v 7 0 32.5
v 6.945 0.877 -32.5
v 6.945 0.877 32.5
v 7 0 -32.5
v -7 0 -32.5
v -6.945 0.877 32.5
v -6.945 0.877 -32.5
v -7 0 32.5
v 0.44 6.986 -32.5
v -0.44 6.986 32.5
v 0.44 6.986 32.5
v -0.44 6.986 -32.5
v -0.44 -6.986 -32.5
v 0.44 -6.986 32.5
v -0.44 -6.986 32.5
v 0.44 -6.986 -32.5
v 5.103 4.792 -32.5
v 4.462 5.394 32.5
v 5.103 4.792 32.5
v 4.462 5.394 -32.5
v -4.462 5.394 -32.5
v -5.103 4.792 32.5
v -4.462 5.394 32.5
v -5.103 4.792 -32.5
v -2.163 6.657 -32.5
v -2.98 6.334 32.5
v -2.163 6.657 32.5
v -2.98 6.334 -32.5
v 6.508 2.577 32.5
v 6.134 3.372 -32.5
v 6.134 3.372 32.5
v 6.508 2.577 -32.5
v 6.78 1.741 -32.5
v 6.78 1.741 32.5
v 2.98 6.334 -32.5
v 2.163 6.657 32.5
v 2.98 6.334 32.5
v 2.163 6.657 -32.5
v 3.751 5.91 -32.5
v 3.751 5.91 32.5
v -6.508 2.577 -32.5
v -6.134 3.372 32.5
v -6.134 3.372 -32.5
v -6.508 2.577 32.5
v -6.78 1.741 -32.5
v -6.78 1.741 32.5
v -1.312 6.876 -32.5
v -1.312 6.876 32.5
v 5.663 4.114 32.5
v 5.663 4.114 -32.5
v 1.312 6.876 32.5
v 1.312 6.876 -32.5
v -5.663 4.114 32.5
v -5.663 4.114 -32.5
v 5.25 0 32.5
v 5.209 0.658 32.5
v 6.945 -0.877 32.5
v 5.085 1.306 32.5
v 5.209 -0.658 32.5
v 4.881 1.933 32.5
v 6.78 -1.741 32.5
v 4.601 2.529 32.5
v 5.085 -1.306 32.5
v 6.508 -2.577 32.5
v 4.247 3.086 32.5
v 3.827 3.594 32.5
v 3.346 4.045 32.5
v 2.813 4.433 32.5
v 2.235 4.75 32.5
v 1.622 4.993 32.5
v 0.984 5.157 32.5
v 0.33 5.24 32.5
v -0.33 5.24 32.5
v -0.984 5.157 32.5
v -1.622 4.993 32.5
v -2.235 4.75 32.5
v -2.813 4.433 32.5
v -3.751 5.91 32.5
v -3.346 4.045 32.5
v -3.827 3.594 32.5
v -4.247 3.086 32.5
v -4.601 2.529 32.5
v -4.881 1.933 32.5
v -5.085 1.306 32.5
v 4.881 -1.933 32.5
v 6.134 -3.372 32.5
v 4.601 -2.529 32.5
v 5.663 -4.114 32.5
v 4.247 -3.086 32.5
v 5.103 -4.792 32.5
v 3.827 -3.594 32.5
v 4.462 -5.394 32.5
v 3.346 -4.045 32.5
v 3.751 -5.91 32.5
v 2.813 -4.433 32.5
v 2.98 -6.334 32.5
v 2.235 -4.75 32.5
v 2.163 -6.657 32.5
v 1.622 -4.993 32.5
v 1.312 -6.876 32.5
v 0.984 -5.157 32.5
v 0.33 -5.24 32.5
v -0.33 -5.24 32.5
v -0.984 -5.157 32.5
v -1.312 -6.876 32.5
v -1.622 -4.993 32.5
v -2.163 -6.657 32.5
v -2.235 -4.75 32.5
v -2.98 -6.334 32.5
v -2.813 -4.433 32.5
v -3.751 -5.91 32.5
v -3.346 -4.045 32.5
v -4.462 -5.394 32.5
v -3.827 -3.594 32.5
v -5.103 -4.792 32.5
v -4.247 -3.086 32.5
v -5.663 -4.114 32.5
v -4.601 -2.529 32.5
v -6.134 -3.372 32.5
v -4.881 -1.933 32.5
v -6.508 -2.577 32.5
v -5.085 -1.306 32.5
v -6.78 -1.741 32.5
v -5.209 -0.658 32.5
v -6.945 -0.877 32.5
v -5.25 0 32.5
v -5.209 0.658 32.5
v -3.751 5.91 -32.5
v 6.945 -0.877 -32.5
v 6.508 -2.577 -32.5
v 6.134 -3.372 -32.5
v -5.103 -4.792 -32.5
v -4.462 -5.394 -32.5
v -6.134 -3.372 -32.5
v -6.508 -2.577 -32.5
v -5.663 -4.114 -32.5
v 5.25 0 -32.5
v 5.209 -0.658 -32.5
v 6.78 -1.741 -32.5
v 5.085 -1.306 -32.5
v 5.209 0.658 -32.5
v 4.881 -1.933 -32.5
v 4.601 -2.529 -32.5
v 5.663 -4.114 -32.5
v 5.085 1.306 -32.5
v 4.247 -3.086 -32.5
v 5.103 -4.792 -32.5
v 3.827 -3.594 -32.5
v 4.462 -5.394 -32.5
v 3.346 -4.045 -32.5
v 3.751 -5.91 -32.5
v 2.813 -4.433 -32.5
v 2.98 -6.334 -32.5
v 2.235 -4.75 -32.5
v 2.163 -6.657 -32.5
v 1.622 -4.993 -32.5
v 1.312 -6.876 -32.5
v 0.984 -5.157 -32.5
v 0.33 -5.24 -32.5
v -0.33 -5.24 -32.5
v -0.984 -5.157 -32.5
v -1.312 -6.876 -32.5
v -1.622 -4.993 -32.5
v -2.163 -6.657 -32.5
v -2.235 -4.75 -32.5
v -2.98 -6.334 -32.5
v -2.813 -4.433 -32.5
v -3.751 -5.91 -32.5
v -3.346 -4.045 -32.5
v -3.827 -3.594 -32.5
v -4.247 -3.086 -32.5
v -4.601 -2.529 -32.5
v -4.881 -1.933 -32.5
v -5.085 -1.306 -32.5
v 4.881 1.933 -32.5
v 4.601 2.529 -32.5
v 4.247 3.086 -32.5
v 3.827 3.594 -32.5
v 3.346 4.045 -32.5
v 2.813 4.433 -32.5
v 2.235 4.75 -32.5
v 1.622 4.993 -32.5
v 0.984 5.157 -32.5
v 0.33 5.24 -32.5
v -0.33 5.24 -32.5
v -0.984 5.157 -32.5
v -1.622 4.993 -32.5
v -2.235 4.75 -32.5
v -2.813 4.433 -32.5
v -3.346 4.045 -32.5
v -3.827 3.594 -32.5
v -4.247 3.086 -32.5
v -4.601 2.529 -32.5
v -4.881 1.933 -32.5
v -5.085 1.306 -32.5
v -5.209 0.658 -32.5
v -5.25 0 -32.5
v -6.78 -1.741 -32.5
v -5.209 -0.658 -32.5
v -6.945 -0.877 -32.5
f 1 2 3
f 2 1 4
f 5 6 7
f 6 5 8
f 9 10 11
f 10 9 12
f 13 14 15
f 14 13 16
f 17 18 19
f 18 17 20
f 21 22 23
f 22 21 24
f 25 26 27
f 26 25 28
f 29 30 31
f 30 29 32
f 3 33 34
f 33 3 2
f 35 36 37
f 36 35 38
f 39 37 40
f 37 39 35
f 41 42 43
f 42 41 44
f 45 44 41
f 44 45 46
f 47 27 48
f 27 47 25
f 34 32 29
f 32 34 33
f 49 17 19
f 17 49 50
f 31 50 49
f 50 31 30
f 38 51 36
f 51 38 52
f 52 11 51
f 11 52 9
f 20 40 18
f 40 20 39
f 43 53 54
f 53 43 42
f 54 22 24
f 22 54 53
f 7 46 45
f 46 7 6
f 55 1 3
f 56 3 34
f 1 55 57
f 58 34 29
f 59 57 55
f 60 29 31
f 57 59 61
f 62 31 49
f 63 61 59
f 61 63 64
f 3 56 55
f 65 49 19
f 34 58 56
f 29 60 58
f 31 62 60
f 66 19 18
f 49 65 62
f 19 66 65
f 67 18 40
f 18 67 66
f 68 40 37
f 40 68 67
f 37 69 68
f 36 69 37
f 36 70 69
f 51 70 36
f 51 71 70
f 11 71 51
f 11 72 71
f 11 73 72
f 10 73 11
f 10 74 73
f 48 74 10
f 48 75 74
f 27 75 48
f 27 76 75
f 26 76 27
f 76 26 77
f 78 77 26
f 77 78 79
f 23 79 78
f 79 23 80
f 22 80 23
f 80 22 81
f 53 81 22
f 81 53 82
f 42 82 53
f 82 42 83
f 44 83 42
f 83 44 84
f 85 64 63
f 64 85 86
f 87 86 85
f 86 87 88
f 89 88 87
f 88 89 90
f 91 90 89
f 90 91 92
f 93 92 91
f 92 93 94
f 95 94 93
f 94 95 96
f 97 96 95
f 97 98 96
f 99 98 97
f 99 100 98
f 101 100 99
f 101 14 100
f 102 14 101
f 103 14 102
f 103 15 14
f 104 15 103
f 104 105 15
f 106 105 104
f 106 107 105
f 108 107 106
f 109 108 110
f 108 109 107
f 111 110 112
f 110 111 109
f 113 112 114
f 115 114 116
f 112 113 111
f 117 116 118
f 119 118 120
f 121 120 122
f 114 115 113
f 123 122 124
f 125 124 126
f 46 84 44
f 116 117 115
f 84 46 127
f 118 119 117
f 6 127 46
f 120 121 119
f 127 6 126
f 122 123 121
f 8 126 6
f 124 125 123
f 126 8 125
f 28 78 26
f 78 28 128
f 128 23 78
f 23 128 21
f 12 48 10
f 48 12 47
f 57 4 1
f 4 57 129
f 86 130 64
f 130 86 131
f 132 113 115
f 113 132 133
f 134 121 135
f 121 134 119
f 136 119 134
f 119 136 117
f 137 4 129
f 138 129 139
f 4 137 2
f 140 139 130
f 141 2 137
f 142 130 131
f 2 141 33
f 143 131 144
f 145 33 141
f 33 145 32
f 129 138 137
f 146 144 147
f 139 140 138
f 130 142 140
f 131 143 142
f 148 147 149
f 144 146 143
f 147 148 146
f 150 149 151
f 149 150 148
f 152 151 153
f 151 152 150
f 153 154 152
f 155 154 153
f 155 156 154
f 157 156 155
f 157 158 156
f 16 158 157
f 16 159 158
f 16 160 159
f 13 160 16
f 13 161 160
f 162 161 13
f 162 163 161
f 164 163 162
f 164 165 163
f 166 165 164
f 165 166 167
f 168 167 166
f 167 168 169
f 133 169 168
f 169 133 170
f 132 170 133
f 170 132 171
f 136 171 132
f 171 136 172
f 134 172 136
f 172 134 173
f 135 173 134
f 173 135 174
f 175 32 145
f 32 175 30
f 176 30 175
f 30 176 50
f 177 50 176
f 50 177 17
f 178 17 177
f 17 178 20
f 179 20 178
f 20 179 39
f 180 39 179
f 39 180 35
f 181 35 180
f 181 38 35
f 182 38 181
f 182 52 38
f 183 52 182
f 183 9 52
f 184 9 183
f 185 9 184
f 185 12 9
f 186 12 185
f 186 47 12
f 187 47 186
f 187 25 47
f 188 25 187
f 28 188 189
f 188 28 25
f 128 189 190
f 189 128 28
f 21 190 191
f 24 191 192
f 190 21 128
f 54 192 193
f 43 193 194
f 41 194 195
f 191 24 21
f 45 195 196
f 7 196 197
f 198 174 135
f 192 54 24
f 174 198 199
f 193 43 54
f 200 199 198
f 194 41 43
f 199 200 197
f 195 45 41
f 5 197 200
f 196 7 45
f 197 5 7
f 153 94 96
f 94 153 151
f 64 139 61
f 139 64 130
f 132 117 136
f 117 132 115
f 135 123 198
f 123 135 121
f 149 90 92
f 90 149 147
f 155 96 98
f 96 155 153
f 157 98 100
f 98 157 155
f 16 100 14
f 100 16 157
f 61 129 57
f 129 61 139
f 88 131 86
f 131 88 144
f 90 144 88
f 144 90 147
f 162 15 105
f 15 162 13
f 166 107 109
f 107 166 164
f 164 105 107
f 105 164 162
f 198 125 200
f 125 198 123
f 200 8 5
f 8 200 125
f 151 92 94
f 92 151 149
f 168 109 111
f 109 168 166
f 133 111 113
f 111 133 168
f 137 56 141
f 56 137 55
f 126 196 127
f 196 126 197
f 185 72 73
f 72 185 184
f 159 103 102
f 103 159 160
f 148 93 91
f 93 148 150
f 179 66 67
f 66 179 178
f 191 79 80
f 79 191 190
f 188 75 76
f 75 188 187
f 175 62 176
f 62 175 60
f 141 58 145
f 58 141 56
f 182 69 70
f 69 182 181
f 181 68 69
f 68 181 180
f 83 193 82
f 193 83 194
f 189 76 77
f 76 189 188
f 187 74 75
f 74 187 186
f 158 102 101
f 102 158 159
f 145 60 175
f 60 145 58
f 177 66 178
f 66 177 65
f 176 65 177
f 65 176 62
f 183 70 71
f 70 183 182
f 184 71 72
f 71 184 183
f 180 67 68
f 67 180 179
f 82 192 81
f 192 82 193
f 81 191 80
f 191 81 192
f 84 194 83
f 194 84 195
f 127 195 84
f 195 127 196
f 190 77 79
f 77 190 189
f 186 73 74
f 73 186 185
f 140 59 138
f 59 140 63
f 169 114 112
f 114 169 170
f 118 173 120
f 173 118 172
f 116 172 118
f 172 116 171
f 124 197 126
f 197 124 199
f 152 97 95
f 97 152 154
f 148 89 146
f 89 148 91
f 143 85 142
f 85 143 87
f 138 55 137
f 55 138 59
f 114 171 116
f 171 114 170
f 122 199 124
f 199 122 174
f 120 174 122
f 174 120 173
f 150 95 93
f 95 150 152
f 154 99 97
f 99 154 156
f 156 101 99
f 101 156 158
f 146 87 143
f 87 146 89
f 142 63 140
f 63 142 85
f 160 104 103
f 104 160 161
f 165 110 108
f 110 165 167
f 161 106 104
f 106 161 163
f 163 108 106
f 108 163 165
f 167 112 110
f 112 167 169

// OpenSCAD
$fn = 50;


difference() {
	union() {
		translate(v = [0, 0, -32.5000000000]) {
			cylinder(h = 65, r = 7.0000000000);
		}
	}
	union() {
		translate(v = [0, 0, -100.0000000000]) {
			cylinder(h = 200, r = 5.2500000000);
		}
	}
}
